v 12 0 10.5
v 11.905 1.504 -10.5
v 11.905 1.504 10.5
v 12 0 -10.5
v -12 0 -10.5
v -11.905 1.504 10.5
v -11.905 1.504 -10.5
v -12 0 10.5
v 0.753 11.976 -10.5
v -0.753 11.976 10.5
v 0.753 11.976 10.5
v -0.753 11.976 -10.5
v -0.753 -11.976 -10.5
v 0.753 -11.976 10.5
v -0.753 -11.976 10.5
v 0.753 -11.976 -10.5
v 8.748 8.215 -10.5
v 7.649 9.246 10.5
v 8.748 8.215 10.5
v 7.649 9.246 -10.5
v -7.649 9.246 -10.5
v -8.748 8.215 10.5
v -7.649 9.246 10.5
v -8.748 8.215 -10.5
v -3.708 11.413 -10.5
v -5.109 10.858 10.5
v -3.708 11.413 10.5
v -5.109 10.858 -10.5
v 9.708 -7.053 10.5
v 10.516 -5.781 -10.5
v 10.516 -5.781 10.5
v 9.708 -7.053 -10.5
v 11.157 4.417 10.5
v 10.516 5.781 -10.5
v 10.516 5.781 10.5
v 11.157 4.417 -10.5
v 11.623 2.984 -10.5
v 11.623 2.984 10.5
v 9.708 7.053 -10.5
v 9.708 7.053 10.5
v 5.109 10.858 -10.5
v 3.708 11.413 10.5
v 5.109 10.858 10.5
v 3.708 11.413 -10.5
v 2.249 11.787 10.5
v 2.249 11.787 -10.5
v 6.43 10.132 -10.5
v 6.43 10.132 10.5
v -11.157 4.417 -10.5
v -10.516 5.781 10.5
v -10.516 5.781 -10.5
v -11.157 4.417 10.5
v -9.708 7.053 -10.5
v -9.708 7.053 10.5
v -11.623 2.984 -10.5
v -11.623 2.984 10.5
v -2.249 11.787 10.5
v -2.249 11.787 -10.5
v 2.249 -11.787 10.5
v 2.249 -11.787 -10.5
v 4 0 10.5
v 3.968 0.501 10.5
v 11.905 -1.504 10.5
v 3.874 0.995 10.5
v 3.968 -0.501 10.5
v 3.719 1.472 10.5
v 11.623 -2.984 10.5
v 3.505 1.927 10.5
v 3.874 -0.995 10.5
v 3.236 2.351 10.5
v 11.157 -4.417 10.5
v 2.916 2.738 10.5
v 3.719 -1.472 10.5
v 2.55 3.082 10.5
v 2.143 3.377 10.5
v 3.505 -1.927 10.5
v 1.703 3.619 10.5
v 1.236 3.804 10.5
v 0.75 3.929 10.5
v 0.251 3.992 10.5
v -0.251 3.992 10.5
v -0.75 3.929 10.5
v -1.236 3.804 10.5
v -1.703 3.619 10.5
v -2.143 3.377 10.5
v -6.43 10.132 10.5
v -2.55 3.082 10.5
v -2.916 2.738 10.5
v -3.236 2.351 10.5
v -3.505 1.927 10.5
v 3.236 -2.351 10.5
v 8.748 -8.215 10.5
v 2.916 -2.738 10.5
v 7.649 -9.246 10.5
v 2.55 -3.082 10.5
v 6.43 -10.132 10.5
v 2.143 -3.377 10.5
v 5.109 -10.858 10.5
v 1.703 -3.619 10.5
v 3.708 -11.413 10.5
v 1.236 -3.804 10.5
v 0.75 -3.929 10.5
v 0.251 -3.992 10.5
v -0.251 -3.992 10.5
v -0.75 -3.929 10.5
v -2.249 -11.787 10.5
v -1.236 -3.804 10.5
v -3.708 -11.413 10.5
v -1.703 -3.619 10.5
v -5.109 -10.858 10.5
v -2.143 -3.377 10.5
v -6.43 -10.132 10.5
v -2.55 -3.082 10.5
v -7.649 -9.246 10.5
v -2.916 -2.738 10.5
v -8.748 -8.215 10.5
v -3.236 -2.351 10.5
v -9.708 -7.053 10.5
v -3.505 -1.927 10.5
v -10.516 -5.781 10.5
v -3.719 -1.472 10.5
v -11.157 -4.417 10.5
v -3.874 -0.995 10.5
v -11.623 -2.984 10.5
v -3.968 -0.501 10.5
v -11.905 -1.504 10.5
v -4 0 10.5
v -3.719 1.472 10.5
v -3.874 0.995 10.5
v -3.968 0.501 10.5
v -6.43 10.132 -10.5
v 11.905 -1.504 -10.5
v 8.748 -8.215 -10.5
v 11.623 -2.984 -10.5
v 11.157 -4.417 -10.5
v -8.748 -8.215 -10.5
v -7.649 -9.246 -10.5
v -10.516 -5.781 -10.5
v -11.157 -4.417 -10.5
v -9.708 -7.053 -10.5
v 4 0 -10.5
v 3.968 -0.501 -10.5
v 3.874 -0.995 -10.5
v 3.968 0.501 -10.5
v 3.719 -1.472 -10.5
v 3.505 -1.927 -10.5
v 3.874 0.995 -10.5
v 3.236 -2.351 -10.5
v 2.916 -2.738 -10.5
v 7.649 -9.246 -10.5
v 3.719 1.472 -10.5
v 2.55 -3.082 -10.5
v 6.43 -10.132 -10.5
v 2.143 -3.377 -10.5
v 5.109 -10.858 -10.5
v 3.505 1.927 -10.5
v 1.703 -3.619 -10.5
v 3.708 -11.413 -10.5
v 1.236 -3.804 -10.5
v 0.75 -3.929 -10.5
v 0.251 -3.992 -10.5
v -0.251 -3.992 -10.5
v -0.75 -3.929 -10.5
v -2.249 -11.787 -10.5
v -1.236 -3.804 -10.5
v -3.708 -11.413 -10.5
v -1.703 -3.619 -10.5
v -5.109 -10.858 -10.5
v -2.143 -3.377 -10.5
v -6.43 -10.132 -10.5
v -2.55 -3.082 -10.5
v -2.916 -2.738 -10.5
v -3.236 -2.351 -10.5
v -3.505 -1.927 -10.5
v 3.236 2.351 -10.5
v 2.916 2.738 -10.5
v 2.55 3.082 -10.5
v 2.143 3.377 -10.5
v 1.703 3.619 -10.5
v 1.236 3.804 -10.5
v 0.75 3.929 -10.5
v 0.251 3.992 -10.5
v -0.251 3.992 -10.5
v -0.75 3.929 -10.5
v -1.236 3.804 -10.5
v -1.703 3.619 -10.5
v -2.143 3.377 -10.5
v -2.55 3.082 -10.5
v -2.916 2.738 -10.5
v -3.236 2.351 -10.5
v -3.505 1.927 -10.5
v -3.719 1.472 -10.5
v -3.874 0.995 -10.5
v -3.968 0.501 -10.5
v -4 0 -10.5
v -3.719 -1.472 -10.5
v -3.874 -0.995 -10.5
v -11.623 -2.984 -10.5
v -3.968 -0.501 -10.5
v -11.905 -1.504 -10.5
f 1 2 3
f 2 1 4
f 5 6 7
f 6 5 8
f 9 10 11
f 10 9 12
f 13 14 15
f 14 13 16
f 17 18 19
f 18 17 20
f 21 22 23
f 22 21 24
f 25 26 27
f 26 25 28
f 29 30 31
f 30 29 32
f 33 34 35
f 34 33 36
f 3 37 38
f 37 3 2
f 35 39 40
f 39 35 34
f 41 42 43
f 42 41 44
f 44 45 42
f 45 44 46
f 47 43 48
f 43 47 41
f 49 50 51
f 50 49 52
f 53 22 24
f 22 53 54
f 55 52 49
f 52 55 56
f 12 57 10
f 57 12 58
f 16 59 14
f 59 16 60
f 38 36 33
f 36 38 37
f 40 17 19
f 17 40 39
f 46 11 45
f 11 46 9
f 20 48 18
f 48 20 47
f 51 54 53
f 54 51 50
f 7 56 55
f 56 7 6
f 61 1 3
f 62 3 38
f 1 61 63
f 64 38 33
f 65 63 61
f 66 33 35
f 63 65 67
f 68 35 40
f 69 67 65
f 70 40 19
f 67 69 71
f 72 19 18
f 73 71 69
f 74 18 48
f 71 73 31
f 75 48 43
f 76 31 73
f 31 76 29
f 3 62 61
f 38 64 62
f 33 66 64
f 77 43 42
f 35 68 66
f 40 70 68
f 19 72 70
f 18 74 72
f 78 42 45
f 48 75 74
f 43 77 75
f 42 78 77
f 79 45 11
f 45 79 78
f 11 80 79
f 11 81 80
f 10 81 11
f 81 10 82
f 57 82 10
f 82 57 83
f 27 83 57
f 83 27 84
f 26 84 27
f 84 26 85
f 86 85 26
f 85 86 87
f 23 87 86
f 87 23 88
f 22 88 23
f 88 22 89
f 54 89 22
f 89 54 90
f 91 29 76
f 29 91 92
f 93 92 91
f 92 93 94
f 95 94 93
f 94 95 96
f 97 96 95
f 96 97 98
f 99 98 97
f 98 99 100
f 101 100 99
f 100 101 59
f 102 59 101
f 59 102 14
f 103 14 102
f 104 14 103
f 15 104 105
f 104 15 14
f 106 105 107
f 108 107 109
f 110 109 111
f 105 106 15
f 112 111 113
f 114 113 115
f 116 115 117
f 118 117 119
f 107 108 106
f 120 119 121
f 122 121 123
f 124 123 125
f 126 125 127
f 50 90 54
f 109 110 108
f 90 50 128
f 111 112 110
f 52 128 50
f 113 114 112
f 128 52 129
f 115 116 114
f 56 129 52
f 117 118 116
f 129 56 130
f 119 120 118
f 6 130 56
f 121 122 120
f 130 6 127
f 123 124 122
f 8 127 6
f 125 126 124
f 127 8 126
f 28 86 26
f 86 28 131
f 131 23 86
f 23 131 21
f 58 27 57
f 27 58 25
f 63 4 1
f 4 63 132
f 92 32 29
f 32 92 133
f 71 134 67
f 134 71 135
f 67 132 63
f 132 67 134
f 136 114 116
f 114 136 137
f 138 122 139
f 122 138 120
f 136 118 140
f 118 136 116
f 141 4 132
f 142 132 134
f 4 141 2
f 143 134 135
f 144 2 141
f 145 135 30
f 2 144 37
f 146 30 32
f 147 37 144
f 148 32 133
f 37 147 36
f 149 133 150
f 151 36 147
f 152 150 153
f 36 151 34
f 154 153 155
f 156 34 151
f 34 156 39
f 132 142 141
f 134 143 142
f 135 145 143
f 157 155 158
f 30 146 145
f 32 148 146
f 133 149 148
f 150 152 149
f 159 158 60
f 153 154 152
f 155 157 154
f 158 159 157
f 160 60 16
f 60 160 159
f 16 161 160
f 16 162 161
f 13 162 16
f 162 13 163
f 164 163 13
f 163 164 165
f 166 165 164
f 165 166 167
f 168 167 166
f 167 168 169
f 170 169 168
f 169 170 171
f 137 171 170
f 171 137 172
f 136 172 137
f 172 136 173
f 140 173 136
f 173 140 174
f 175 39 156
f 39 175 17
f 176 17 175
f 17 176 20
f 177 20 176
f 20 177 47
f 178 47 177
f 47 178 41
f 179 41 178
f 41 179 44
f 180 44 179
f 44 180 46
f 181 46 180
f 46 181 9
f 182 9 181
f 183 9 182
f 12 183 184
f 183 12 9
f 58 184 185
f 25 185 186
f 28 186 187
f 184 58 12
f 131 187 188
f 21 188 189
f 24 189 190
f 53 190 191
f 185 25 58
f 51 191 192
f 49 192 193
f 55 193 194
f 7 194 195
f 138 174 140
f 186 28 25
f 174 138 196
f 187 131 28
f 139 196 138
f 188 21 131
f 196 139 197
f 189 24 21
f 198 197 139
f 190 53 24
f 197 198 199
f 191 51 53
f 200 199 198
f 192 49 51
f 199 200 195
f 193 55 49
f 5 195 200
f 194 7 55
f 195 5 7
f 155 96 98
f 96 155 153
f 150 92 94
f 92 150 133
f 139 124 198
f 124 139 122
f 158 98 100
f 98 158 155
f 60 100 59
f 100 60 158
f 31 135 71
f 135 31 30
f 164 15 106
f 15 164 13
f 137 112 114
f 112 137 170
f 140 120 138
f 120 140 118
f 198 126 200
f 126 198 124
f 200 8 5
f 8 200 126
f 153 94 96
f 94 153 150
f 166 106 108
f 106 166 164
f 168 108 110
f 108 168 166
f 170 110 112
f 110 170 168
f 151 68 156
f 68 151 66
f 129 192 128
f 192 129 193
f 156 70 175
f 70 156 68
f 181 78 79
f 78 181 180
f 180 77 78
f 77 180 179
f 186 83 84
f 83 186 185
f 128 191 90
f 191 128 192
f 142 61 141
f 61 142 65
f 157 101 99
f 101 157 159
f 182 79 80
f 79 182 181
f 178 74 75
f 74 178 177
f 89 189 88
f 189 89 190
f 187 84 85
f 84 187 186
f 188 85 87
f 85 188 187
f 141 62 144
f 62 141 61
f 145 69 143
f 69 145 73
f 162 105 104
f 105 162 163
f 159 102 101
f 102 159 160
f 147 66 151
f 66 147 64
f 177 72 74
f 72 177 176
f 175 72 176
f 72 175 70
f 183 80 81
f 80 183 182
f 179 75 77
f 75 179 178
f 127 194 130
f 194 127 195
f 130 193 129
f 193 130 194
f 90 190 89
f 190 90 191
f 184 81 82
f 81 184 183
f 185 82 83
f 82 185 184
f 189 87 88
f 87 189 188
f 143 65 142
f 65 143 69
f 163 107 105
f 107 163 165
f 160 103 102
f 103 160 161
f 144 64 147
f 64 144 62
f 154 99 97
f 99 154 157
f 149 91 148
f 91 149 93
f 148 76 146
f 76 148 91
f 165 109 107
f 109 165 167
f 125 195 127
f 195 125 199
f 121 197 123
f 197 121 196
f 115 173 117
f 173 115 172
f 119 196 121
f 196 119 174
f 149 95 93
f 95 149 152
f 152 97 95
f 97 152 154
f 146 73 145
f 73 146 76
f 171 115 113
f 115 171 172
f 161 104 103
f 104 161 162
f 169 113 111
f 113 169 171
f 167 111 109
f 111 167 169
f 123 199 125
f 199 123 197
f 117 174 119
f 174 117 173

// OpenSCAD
$fn = 50;


difference() {
	union() {
		translate(v = [0, 0, -10.5000000000]) {
			cylinder(h = 21, r = 12.0000000000);
		}
	}
	union() {
		translate(v = [0, 0, -100.0000000000]) {
			cylinder(h = 200, r = 4);
		}
	}
}
